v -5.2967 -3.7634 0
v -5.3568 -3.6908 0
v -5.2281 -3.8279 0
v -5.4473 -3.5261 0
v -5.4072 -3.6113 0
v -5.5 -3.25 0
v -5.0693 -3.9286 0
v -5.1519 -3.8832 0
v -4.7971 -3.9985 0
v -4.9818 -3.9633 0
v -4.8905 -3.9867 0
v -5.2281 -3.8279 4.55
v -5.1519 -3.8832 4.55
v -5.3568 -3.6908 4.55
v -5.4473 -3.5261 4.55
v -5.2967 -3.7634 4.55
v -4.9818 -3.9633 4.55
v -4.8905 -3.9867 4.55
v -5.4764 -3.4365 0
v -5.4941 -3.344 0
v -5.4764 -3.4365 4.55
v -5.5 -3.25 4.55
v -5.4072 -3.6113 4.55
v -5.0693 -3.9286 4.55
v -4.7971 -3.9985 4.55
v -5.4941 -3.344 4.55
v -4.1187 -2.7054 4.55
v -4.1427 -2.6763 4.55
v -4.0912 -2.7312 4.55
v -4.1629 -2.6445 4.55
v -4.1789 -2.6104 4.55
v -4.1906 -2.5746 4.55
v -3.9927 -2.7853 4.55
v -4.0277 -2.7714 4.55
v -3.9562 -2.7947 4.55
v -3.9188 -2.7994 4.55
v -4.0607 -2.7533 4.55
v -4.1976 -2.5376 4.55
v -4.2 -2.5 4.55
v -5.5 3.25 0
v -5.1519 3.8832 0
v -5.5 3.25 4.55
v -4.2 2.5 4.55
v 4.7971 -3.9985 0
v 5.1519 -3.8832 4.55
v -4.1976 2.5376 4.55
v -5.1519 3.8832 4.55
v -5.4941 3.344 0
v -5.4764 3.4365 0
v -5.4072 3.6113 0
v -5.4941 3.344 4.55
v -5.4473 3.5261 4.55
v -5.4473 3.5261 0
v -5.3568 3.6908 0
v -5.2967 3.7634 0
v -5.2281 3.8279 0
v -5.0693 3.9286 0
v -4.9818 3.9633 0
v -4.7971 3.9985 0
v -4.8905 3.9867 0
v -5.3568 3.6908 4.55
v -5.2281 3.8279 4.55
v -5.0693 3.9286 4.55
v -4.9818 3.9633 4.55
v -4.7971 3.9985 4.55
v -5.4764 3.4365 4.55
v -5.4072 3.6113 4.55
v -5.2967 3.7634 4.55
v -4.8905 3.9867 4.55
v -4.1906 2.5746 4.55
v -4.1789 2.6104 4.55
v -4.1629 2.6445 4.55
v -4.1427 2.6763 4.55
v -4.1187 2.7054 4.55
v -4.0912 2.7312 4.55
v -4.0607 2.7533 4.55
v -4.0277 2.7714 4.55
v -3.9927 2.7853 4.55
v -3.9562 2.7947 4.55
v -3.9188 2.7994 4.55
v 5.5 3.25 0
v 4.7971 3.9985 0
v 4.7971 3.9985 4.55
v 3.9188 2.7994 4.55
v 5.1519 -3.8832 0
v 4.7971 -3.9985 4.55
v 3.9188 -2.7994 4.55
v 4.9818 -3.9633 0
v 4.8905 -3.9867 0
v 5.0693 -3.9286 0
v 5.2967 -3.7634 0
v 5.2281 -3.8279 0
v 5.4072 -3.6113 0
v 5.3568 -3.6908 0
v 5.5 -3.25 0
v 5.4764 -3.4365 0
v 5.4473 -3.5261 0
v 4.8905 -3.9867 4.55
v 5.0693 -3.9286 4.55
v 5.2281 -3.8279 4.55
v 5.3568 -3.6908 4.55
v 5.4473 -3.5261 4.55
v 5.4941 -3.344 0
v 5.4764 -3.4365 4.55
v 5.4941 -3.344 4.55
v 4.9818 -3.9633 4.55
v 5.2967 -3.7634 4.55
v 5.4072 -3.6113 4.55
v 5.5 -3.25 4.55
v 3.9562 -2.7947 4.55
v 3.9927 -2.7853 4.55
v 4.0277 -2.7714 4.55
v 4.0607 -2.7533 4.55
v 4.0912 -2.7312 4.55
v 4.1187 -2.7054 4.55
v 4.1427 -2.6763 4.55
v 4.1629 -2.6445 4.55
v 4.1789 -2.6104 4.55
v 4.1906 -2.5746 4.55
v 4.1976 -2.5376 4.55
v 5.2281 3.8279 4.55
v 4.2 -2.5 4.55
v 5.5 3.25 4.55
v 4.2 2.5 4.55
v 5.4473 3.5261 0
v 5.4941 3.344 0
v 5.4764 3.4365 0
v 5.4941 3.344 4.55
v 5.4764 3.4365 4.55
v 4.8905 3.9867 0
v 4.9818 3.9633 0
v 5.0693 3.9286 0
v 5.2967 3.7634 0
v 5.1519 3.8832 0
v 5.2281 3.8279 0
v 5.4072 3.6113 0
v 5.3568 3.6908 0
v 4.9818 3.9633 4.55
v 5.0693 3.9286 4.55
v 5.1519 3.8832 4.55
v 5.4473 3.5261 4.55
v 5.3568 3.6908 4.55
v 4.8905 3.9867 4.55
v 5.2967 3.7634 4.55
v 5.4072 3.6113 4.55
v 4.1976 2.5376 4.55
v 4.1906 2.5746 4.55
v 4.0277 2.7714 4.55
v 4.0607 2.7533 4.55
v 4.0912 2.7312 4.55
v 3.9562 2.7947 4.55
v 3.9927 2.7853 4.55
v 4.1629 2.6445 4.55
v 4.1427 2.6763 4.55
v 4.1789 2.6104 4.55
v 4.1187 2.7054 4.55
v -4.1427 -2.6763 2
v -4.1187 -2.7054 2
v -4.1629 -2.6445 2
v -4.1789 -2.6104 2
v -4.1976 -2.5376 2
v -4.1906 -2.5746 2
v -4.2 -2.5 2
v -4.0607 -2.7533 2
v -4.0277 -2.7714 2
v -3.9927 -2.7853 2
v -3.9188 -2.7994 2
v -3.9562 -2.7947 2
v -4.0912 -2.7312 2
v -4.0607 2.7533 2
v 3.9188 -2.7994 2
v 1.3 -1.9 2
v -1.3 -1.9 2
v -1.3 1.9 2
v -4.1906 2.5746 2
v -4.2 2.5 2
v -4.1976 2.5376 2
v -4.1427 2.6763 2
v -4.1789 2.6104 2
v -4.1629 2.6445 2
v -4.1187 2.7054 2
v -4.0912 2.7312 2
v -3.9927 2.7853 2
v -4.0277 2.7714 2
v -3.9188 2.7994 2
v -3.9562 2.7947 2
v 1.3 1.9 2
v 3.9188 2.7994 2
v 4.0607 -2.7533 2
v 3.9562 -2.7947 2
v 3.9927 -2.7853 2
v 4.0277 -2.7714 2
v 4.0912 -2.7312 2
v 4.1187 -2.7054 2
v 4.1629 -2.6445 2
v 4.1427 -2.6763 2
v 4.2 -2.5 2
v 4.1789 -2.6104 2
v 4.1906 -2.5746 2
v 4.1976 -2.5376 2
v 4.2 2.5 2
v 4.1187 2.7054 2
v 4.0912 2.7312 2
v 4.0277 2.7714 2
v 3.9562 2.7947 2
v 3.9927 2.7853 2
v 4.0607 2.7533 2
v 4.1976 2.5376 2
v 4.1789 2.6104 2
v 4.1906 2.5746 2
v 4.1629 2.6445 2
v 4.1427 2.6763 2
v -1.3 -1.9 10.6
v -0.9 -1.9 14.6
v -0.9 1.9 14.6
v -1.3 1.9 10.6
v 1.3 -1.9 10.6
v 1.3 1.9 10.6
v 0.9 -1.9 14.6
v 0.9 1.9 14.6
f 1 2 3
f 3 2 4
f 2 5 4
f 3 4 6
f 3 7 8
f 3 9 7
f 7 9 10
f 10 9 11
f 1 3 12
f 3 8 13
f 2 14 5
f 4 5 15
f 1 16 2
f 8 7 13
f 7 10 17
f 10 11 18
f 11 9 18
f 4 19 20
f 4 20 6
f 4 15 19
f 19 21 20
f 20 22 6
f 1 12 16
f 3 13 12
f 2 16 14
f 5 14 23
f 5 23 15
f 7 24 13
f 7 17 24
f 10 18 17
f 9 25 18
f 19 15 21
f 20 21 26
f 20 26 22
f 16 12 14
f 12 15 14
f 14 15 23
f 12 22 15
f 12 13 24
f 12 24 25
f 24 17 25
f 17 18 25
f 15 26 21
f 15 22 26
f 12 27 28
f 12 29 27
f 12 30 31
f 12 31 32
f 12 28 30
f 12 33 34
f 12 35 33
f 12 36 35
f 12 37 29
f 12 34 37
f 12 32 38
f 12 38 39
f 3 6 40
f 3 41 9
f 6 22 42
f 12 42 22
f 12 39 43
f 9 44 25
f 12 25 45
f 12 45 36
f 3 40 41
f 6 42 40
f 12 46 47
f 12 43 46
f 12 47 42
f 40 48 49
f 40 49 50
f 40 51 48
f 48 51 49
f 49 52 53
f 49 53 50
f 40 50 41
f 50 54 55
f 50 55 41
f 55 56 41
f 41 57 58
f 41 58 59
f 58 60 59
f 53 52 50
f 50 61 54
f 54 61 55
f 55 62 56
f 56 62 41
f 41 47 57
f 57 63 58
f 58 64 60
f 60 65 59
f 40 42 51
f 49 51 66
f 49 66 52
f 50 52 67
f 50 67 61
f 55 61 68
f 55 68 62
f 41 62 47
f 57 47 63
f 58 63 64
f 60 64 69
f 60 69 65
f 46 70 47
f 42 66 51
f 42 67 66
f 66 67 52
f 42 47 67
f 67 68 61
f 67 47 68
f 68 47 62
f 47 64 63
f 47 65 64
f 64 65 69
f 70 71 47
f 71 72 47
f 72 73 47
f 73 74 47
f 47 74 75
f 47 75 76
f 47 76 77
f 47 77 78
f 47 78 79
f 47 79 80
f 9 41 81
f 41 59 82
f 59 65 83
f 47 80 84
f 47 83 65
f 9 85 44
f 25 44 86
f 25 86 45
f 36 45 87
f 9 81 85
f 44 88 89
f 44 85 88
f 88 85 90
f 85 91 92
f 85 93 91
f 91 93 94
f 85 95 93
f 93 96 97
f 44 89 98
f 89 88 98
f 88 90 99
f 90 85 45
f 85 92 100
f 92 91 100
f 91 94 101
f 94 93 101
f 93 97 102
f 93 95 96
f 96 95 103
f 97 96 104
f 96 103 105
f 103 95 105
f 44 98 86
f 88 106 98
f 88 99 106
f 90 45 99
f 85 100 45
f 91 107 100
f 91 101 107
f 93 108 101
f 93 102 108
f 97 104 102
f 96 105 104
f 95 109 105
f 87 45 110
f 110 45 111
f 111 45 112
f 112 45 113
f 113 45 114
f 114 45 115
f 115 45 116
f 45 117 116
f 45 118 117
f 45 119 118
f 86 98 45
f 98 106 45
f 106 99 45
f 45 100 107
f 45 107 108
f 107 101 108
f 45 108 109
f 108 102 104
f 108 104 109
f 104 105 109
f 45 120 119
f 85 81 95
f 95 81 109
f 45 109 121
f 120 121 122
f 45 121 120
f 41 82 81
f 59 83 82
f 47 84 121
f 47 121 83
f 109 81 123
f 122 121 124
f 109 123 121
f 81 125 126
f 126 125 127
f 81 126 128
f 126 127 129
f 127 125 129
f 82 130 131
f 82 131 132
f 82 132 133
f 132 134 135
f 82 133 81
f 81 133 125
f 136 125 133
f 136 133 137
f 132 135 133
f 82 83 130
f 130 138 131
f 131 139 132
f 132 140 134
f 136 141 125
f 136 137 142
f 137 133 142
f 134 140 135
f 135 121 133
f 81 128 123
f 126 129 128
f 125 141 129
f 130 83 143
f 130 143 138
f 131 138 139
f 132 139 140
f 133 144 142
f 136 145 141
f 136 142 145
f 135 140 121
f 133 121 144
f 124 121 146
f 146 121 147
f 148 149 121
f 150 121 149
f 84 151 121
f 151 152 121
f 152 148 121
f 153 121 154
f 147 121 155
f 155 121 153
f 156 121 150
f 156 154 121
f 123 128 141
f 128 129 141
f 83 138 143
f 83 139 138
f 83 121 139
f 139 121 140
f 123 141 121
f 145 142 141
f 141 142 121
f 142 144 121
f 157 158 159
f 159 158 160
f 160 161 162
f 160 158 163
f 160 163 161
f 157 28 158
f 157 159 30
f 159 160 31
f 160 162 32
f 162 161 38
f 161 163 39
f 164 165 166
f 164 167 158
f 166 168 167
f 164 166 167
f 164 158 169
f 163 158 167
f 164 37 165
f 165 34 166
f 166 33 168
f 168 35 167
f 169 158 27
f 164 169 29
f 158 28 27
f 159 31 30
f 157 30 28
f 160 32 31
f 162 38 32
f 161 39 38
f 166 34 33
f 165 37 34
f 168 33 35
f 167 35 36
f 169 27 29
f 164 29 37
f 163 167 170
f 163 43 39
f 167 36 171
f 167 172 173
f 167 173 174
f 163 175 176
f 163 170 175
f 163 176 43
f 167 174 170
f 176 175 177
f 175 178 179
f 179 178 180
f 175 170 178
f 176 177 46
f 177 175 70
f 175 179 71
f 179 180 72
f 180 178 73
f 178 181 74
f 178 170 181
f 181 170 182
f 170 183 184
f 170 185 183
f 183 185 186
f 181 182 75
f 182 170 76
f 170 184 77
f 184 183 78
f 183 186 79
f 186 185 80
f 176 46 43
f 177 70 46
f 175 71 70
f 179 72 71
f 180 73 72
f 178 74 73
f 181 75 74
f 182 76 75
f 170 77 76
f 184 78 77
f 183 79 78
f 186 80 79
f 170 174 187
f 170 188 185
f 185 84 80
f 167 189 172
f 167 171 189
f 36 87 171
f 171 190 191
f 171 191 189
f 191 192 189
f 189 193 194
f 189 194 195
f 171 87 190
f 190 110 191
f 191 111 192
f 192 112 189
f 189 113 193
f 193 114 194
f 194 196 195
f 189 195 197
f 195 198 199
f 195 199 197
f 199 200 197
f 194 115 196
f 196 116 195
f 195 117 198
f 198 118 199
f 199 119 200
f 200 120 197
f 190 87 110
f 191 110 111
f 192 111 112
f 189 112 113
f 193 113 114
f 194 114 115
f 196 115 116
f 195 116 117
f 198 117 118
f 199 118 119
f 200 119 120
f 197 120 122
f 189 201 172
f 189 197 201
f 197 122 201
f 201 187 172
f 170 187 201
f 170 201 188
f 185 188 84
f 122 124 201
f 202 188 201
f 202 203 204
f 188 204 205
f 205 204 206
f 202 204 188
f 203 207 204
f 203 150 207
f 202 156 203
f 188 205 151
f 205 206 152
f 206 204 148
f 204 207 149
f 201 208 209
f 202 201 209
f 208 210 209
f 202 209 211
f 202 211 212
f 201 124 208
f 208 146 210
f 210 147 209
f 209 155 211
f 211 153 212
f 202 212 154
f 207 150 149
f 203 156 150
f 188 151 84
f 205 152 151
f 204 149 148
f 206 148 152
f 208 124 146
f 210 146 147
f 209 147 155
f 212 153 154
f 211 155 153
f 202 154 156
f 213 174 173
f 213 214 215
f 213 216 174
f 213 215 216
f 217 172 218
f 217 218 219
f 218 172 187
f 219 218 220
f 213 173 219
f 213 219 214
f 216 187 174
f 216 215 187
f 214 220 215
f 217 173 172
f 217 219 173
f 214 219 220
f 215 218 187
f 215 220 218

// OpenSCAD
$fn = 50;

difference() {
	union() {
		translate(v = [0, 0, 0]) {
			rotate(a = [0, 0, 0]) {
				difference() {
					union() {
						translate(v = [0, 0, 0]) {
							rotate(a = [0, 0, 0]) {
								difference() {
									union() {
										hull() {
											translate(v = [-4.75, 3.25, 0]) {
												cylinder(h = 4.55, r = 0.75);
											}
											translate(v = [4.75, 3.25, 0]) {
												cylinder(h = 4.55, r = 0.75);
											}
											translate(v = [-4.75, -3.25, 0]) {
												cylinder(h = 4.55, r = 0.75);
											}
											translate(v = [4.75, -3.25, 0]) {
												cylinder(h = 4.55, r = 0.75);
											}
										}
									}
									union() {
										translate(v = [0, 0, 2.0]) {
											hull() {
												translate(v = [-3.9000000000000004, 2.5, 0]) {
													cylinder(h = 2.65, r = 0.3);
												}
												translate(v = [3.9000000000000004, 2.5, 0]) {
													cylinder(h = 2.65, r = 0.3);
												}
												translate(v = [-3.9000000000000004, -2.5, 0]) {
													cylinder(h = 2.65, r = 0.3);
												}
												translate(v = [3.9000000000000004, -2.5, 0]) {
													cylinder(h = 2.65, r = 0.3);
												}
											}
										}
									}
								}
							}
						}
						translate(v = [0, 0, 0]) {
							rotate(a = [0, 0, 0]) {
								difference() {
									union() {
										translate(v = [-1.4000000000000001, -1.9, 1.95]) {
											cube(size = [2.8000000000000003, 3.8, 12.65]);
										}
									}
									union() {
										translate(v = [0, 2.0, 0]) {
											rotate(a = [90, 0, 0]) {
												linear_extrude(height = 4.0) {
													polygon(points = [[-1.3, 1.85], [-1.3, 10.6], [-0.9, 14.6], [-0.9, 14.799999999999999], [-1.6, 14.799999999999999], [-1.6, 1.85]]);
												}
											}
										}
										translate(v = [0, 2.0, 0]) {
											rotate(a = [90, 0, 0]) {
												linear_extrude(height = 4.0) {
													polygon(points = [[1.3, 1.85], [1.3, 10.6], [0.9, 14.6], [0.9, 14.799999999999999], [1.6, 14.799999999999999], [1.6, 1.85]]);
												}
											}
										}
									}
								}
							}
						}
					}
					union();
				}
			}
		}
	}
	union();
}
